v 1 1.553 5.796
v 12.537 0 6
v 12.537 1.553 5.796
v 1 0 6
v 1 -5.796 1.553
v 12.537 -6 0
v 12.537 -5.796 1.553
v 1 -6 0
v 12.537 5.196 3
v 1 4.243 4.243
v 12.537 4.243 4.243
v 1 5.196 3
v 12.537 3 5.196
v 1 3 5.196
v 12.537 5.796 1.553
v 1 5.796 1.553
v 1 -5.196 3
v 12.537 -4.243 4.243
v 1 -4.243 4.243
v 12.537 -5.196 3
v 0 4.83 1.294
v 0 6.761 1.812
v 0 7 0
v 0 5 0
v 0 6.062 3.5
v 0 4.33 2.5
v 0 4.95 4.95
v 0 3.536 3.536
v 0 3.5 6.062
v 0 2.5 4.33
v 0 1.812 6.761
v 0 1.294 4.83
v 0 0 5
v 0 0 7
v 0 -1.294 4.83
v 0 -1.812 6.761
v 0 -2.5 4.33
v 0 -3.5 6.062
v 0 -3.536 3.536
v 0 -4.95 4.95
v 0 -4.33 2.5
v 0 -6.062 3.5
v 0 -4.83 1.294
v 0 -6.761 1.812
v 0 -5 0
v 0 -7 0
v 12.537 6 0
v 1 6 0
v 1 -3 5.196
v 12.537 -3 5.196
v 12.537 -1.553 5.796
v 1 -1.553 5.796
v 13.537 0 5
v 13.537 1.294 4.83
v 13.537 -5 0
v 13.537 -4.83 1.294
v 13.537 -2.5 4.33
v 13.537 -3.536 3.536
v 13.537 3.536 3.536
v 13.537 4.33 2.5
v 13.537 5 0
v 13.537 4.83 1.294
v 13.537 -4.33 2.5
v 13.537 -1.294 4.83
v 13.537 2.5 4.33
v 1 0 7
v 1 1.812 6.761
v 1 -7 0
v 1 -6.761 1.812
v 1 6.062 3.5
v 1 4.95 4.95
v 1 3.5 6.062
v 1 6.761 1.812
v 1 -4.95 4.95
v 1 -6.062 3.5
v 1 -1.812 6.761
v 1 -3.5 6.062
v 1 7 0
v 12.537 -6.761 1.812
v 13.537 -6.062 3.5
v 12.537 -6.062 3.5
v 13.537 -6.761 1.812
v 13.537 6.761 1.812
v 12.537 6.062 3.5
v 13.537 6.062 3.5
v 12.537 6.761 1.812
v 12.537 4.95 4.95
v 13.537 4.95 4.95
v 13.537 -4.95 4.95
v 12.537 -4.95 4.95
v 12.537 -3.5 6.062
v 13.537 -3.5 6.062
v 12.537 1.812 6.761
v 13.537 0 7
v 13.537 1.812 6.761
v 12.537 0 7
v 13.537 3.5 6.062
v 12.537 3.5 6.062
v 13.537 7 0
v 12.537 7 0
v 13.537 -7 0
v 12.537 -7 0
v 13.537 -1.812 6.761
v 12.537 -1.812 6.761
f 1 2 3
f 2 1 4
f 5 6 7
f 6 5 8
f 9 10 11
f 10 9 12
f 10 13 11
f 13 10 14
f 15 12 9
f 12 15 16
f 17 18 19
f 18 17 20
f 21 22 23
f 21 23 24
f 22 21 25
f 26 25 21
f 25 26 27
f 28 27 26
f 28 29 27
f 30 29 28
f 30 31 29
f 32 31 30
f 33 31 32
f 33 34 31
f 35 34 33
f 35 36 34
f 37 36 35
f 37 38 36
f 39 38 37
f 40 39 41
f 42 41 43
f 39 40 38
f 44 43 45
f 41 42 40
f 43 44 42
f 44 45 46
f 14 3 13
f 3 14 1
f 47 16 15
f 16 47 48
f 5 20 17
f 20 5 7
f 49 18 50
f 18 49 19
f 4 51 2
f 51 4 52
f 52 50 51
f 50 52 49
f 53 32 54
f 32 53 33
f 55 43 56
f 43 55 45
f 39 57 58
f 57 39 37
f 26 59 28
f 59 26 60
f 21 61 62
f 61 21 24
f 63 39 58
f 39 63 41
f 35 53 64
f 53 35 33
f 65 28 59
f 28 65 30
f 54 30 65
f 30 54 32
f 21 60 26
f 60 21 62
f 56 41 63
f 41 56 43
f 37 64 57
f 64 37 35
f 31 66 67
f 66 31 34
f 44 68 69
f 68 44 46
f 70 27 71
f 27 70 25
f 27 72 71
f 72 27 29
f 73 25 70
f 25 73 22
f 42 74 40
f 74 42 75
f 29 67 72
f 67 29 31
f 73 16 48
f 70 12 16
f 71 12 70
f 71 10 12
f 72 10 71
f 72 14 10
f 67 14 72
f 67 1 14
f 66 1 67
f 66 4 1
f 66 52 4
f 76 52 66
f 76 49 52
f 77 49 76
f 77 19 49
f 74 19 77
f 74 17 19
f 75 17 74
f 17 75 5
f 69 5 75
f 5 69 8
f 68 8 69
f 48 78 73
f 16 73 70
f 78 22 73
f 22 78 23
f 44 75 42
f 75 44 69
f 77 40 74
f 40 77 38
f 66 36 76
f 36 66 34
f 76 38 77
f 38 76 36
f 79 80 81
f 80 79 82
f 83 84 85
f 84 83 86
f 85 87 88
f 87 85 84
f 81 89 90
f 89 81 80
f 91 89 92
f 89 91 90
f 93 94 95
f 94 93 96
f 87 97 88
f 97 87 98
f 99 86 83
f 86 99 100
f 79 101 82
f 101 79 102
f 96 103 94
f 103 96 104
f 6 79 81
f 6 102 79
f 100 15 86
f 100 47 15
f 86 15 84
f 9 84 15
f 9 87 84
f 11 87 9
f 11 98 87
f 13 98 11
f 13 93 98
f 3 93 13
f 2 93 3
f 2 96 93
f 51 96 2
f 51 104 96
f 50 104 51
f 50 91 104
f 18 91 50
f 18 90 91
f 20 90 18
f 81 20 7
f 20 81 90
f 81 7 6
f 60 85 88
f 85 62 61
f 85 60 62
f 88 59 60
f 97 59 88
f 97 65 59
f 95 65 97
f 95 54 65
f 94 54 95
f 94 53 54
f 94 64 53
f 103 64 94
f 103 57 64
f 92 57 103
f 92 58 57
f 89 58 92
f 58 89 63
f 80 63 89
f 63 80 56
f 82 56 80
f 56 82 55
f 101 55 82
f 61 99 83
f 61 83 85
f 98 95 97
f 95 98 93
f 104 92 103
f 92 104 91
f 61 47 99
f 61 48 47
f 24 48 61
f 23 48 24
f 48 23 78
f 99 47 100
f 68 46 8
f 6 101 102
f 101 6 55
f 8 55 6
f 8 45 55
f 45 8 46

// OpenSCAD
// file: ../build_environments.scad
// build_environments.scad: modules to build level sections
//

module pool(diameter=10.0, wall_height=2.0, step_width=3.0, connections=[])
{
    difference() {
        union() {
        difference() {
            cylinder(h=0.5,r1=diameter+step_width,r2=diameter+step_width,$fn=48);
            translate([0,0,-0.1])
                cylinder(h=0.7,r1=diameter,r2=diameter,$fn=48);
        }
        difference() {
            cylinder(h=wall_height,r1=diameter+step_width+1.0,r2=diameter+step_width+1.0,$fn=48);
            translate([0,0,-0.1])
                cylinder(h=wall_height+0.2,r1=diameter+step_width,r2=diameter+step_width,$fn=48);
        }
        }
    
        for (c = connections)
        {
            rotate([0,90,0]) {
                angle = atan2(c[1],c[0]);
                rotate([-angle,0,0]) {
                    cylinder(h=diameter+5.0,r1=c[2],r2=c[2],$fn=48);
                }
            }
        }
    }
}

module straight(length=10.0, width=2.0, dy1=0.0, dy2=0.0, dz=0.0)
{
    dims = [0, 0, 0, 0, 0, (dz/length)];
    matrix = [
        [ 1, dims[0], dims[1], 0 ],
        [ dims[2], 1, dims[4], 0 ],
        [ dims[5], dims[3], 1, 0 ],
        [ 0, 0, 0, 1 ]
    ];
    multmatrix(matrix)
    difference() {
        translate([dy1,0,0])
        union() {
            rotate([0,90,0]) {
                difference() {
                    cylinder(h=(length-dy1-dy2),r1=width+1.0,r2=width+1.0,$fn=24);
                    translate([0,0,-0.1])
                        cylinder(h=(length-dy1-dy2+0.2),r1=width,r2=width,$fn=24);
                }
                difference() {
                    cylinder(h=1.0,r1=width+2.0,r2=width+2.0,$fn=24);
                    translate([0,0,-0.1])
                        cylinder(h=1.2,r1=width,r2=width,$fn=24);
                }
                translate([0,0,(length-dy1-dy2)-1.0]) {
                    difference() {
                        cylinder(h=1.0,r1=width+2.0,r2=width+2.0,$fn=24);
                        translate([0,0,-0.1])
                            cylinder(h=1.2,r1=width,r2=width,$fn=24);
                    }
                }
            }
        }
        translate([0,0,-(2*width+4.0)/2])
            cube([3*length,3*length,2*width+4.0],center=true);
    }
}

module curve(p0=[0,0], center=[0,0], dir=1, angle=0.0, width=2.0)
{
    radius = sqrt((p0[0]-center[0])*(p0[0]-center[0]) + (p0[1]-center[1])*(p0[1]-center[1]));
    if (dir == 0) {
        difference() {
            rotate([0,0,-90])
            difference() {
                rotate_extrude(angle = angle, convexity = 10, $fn=32)
                    translate([radius, 0, 0])
                        circle(r = width+1.0,$fn=24);
                rotate([0,0,-1.0])
                    rotate_extrude(angle = angle+2.0, convexity = 10, $fn=32)
                        translate([radius, 0, 0])
                            circle(r = width,$fn=24);
            }
            translate([0,0,-(2*width+4.0)/2])
                cube([5*radius,5*radius,2*width+4.0],center=true);
        }
    }
    else {
        difference() {
            rotate([0,0,90])
            difference() {
                rotate_extrude(angle = -angle, convexity = 10, $fn=32)
                    translate([radius, 0, 0])
                        circle(r = width+1.0,$fn=24);
                rotate([0,0,1.0])
                    rotate_extrude(angle = -angle-2.0, convexity = 10, $fn=32)
                        translate([radius, 0, 0])
                            circle(r = width,$fn=24);
            }
            translate([0,0,-(2*width+4.0)/2])
                cube([5*radius,5*radius,2*width+4.0],center=true);
        }
    }

}

// test pool
//pool(diameter=12.0000, wall_height=3.0000, step_width=3.0000, connections=[[0.0000,-26.0000,2.0000], [23.6074,0.0000,2.0000]]);

// test straight, slope
//straight(length=26.0000, width=2.0000, dy1=11.8322, dy2=6.7082, dz=0.0000);
//straight(length=29.1549, width=12.0000, dy1=0.0000, dy2=0.0000, dz=-15.0000);

// test curve
//curve(p0=[23.6074, 0.0000], center=[23.6074, 5.0000], dir=0, angle=60.1011, width=2.0000);
//curve(p0=[33.6426, 12.4219], center=[37.9771, 9.9295], dir=1, angle=120.4627, width=2.0000);
// main file
use <../build_environments.scad>;
straight(length=13.5372, width=5.0000, dy1=0.0000, dy2=0.0000, dz=0.0000);
